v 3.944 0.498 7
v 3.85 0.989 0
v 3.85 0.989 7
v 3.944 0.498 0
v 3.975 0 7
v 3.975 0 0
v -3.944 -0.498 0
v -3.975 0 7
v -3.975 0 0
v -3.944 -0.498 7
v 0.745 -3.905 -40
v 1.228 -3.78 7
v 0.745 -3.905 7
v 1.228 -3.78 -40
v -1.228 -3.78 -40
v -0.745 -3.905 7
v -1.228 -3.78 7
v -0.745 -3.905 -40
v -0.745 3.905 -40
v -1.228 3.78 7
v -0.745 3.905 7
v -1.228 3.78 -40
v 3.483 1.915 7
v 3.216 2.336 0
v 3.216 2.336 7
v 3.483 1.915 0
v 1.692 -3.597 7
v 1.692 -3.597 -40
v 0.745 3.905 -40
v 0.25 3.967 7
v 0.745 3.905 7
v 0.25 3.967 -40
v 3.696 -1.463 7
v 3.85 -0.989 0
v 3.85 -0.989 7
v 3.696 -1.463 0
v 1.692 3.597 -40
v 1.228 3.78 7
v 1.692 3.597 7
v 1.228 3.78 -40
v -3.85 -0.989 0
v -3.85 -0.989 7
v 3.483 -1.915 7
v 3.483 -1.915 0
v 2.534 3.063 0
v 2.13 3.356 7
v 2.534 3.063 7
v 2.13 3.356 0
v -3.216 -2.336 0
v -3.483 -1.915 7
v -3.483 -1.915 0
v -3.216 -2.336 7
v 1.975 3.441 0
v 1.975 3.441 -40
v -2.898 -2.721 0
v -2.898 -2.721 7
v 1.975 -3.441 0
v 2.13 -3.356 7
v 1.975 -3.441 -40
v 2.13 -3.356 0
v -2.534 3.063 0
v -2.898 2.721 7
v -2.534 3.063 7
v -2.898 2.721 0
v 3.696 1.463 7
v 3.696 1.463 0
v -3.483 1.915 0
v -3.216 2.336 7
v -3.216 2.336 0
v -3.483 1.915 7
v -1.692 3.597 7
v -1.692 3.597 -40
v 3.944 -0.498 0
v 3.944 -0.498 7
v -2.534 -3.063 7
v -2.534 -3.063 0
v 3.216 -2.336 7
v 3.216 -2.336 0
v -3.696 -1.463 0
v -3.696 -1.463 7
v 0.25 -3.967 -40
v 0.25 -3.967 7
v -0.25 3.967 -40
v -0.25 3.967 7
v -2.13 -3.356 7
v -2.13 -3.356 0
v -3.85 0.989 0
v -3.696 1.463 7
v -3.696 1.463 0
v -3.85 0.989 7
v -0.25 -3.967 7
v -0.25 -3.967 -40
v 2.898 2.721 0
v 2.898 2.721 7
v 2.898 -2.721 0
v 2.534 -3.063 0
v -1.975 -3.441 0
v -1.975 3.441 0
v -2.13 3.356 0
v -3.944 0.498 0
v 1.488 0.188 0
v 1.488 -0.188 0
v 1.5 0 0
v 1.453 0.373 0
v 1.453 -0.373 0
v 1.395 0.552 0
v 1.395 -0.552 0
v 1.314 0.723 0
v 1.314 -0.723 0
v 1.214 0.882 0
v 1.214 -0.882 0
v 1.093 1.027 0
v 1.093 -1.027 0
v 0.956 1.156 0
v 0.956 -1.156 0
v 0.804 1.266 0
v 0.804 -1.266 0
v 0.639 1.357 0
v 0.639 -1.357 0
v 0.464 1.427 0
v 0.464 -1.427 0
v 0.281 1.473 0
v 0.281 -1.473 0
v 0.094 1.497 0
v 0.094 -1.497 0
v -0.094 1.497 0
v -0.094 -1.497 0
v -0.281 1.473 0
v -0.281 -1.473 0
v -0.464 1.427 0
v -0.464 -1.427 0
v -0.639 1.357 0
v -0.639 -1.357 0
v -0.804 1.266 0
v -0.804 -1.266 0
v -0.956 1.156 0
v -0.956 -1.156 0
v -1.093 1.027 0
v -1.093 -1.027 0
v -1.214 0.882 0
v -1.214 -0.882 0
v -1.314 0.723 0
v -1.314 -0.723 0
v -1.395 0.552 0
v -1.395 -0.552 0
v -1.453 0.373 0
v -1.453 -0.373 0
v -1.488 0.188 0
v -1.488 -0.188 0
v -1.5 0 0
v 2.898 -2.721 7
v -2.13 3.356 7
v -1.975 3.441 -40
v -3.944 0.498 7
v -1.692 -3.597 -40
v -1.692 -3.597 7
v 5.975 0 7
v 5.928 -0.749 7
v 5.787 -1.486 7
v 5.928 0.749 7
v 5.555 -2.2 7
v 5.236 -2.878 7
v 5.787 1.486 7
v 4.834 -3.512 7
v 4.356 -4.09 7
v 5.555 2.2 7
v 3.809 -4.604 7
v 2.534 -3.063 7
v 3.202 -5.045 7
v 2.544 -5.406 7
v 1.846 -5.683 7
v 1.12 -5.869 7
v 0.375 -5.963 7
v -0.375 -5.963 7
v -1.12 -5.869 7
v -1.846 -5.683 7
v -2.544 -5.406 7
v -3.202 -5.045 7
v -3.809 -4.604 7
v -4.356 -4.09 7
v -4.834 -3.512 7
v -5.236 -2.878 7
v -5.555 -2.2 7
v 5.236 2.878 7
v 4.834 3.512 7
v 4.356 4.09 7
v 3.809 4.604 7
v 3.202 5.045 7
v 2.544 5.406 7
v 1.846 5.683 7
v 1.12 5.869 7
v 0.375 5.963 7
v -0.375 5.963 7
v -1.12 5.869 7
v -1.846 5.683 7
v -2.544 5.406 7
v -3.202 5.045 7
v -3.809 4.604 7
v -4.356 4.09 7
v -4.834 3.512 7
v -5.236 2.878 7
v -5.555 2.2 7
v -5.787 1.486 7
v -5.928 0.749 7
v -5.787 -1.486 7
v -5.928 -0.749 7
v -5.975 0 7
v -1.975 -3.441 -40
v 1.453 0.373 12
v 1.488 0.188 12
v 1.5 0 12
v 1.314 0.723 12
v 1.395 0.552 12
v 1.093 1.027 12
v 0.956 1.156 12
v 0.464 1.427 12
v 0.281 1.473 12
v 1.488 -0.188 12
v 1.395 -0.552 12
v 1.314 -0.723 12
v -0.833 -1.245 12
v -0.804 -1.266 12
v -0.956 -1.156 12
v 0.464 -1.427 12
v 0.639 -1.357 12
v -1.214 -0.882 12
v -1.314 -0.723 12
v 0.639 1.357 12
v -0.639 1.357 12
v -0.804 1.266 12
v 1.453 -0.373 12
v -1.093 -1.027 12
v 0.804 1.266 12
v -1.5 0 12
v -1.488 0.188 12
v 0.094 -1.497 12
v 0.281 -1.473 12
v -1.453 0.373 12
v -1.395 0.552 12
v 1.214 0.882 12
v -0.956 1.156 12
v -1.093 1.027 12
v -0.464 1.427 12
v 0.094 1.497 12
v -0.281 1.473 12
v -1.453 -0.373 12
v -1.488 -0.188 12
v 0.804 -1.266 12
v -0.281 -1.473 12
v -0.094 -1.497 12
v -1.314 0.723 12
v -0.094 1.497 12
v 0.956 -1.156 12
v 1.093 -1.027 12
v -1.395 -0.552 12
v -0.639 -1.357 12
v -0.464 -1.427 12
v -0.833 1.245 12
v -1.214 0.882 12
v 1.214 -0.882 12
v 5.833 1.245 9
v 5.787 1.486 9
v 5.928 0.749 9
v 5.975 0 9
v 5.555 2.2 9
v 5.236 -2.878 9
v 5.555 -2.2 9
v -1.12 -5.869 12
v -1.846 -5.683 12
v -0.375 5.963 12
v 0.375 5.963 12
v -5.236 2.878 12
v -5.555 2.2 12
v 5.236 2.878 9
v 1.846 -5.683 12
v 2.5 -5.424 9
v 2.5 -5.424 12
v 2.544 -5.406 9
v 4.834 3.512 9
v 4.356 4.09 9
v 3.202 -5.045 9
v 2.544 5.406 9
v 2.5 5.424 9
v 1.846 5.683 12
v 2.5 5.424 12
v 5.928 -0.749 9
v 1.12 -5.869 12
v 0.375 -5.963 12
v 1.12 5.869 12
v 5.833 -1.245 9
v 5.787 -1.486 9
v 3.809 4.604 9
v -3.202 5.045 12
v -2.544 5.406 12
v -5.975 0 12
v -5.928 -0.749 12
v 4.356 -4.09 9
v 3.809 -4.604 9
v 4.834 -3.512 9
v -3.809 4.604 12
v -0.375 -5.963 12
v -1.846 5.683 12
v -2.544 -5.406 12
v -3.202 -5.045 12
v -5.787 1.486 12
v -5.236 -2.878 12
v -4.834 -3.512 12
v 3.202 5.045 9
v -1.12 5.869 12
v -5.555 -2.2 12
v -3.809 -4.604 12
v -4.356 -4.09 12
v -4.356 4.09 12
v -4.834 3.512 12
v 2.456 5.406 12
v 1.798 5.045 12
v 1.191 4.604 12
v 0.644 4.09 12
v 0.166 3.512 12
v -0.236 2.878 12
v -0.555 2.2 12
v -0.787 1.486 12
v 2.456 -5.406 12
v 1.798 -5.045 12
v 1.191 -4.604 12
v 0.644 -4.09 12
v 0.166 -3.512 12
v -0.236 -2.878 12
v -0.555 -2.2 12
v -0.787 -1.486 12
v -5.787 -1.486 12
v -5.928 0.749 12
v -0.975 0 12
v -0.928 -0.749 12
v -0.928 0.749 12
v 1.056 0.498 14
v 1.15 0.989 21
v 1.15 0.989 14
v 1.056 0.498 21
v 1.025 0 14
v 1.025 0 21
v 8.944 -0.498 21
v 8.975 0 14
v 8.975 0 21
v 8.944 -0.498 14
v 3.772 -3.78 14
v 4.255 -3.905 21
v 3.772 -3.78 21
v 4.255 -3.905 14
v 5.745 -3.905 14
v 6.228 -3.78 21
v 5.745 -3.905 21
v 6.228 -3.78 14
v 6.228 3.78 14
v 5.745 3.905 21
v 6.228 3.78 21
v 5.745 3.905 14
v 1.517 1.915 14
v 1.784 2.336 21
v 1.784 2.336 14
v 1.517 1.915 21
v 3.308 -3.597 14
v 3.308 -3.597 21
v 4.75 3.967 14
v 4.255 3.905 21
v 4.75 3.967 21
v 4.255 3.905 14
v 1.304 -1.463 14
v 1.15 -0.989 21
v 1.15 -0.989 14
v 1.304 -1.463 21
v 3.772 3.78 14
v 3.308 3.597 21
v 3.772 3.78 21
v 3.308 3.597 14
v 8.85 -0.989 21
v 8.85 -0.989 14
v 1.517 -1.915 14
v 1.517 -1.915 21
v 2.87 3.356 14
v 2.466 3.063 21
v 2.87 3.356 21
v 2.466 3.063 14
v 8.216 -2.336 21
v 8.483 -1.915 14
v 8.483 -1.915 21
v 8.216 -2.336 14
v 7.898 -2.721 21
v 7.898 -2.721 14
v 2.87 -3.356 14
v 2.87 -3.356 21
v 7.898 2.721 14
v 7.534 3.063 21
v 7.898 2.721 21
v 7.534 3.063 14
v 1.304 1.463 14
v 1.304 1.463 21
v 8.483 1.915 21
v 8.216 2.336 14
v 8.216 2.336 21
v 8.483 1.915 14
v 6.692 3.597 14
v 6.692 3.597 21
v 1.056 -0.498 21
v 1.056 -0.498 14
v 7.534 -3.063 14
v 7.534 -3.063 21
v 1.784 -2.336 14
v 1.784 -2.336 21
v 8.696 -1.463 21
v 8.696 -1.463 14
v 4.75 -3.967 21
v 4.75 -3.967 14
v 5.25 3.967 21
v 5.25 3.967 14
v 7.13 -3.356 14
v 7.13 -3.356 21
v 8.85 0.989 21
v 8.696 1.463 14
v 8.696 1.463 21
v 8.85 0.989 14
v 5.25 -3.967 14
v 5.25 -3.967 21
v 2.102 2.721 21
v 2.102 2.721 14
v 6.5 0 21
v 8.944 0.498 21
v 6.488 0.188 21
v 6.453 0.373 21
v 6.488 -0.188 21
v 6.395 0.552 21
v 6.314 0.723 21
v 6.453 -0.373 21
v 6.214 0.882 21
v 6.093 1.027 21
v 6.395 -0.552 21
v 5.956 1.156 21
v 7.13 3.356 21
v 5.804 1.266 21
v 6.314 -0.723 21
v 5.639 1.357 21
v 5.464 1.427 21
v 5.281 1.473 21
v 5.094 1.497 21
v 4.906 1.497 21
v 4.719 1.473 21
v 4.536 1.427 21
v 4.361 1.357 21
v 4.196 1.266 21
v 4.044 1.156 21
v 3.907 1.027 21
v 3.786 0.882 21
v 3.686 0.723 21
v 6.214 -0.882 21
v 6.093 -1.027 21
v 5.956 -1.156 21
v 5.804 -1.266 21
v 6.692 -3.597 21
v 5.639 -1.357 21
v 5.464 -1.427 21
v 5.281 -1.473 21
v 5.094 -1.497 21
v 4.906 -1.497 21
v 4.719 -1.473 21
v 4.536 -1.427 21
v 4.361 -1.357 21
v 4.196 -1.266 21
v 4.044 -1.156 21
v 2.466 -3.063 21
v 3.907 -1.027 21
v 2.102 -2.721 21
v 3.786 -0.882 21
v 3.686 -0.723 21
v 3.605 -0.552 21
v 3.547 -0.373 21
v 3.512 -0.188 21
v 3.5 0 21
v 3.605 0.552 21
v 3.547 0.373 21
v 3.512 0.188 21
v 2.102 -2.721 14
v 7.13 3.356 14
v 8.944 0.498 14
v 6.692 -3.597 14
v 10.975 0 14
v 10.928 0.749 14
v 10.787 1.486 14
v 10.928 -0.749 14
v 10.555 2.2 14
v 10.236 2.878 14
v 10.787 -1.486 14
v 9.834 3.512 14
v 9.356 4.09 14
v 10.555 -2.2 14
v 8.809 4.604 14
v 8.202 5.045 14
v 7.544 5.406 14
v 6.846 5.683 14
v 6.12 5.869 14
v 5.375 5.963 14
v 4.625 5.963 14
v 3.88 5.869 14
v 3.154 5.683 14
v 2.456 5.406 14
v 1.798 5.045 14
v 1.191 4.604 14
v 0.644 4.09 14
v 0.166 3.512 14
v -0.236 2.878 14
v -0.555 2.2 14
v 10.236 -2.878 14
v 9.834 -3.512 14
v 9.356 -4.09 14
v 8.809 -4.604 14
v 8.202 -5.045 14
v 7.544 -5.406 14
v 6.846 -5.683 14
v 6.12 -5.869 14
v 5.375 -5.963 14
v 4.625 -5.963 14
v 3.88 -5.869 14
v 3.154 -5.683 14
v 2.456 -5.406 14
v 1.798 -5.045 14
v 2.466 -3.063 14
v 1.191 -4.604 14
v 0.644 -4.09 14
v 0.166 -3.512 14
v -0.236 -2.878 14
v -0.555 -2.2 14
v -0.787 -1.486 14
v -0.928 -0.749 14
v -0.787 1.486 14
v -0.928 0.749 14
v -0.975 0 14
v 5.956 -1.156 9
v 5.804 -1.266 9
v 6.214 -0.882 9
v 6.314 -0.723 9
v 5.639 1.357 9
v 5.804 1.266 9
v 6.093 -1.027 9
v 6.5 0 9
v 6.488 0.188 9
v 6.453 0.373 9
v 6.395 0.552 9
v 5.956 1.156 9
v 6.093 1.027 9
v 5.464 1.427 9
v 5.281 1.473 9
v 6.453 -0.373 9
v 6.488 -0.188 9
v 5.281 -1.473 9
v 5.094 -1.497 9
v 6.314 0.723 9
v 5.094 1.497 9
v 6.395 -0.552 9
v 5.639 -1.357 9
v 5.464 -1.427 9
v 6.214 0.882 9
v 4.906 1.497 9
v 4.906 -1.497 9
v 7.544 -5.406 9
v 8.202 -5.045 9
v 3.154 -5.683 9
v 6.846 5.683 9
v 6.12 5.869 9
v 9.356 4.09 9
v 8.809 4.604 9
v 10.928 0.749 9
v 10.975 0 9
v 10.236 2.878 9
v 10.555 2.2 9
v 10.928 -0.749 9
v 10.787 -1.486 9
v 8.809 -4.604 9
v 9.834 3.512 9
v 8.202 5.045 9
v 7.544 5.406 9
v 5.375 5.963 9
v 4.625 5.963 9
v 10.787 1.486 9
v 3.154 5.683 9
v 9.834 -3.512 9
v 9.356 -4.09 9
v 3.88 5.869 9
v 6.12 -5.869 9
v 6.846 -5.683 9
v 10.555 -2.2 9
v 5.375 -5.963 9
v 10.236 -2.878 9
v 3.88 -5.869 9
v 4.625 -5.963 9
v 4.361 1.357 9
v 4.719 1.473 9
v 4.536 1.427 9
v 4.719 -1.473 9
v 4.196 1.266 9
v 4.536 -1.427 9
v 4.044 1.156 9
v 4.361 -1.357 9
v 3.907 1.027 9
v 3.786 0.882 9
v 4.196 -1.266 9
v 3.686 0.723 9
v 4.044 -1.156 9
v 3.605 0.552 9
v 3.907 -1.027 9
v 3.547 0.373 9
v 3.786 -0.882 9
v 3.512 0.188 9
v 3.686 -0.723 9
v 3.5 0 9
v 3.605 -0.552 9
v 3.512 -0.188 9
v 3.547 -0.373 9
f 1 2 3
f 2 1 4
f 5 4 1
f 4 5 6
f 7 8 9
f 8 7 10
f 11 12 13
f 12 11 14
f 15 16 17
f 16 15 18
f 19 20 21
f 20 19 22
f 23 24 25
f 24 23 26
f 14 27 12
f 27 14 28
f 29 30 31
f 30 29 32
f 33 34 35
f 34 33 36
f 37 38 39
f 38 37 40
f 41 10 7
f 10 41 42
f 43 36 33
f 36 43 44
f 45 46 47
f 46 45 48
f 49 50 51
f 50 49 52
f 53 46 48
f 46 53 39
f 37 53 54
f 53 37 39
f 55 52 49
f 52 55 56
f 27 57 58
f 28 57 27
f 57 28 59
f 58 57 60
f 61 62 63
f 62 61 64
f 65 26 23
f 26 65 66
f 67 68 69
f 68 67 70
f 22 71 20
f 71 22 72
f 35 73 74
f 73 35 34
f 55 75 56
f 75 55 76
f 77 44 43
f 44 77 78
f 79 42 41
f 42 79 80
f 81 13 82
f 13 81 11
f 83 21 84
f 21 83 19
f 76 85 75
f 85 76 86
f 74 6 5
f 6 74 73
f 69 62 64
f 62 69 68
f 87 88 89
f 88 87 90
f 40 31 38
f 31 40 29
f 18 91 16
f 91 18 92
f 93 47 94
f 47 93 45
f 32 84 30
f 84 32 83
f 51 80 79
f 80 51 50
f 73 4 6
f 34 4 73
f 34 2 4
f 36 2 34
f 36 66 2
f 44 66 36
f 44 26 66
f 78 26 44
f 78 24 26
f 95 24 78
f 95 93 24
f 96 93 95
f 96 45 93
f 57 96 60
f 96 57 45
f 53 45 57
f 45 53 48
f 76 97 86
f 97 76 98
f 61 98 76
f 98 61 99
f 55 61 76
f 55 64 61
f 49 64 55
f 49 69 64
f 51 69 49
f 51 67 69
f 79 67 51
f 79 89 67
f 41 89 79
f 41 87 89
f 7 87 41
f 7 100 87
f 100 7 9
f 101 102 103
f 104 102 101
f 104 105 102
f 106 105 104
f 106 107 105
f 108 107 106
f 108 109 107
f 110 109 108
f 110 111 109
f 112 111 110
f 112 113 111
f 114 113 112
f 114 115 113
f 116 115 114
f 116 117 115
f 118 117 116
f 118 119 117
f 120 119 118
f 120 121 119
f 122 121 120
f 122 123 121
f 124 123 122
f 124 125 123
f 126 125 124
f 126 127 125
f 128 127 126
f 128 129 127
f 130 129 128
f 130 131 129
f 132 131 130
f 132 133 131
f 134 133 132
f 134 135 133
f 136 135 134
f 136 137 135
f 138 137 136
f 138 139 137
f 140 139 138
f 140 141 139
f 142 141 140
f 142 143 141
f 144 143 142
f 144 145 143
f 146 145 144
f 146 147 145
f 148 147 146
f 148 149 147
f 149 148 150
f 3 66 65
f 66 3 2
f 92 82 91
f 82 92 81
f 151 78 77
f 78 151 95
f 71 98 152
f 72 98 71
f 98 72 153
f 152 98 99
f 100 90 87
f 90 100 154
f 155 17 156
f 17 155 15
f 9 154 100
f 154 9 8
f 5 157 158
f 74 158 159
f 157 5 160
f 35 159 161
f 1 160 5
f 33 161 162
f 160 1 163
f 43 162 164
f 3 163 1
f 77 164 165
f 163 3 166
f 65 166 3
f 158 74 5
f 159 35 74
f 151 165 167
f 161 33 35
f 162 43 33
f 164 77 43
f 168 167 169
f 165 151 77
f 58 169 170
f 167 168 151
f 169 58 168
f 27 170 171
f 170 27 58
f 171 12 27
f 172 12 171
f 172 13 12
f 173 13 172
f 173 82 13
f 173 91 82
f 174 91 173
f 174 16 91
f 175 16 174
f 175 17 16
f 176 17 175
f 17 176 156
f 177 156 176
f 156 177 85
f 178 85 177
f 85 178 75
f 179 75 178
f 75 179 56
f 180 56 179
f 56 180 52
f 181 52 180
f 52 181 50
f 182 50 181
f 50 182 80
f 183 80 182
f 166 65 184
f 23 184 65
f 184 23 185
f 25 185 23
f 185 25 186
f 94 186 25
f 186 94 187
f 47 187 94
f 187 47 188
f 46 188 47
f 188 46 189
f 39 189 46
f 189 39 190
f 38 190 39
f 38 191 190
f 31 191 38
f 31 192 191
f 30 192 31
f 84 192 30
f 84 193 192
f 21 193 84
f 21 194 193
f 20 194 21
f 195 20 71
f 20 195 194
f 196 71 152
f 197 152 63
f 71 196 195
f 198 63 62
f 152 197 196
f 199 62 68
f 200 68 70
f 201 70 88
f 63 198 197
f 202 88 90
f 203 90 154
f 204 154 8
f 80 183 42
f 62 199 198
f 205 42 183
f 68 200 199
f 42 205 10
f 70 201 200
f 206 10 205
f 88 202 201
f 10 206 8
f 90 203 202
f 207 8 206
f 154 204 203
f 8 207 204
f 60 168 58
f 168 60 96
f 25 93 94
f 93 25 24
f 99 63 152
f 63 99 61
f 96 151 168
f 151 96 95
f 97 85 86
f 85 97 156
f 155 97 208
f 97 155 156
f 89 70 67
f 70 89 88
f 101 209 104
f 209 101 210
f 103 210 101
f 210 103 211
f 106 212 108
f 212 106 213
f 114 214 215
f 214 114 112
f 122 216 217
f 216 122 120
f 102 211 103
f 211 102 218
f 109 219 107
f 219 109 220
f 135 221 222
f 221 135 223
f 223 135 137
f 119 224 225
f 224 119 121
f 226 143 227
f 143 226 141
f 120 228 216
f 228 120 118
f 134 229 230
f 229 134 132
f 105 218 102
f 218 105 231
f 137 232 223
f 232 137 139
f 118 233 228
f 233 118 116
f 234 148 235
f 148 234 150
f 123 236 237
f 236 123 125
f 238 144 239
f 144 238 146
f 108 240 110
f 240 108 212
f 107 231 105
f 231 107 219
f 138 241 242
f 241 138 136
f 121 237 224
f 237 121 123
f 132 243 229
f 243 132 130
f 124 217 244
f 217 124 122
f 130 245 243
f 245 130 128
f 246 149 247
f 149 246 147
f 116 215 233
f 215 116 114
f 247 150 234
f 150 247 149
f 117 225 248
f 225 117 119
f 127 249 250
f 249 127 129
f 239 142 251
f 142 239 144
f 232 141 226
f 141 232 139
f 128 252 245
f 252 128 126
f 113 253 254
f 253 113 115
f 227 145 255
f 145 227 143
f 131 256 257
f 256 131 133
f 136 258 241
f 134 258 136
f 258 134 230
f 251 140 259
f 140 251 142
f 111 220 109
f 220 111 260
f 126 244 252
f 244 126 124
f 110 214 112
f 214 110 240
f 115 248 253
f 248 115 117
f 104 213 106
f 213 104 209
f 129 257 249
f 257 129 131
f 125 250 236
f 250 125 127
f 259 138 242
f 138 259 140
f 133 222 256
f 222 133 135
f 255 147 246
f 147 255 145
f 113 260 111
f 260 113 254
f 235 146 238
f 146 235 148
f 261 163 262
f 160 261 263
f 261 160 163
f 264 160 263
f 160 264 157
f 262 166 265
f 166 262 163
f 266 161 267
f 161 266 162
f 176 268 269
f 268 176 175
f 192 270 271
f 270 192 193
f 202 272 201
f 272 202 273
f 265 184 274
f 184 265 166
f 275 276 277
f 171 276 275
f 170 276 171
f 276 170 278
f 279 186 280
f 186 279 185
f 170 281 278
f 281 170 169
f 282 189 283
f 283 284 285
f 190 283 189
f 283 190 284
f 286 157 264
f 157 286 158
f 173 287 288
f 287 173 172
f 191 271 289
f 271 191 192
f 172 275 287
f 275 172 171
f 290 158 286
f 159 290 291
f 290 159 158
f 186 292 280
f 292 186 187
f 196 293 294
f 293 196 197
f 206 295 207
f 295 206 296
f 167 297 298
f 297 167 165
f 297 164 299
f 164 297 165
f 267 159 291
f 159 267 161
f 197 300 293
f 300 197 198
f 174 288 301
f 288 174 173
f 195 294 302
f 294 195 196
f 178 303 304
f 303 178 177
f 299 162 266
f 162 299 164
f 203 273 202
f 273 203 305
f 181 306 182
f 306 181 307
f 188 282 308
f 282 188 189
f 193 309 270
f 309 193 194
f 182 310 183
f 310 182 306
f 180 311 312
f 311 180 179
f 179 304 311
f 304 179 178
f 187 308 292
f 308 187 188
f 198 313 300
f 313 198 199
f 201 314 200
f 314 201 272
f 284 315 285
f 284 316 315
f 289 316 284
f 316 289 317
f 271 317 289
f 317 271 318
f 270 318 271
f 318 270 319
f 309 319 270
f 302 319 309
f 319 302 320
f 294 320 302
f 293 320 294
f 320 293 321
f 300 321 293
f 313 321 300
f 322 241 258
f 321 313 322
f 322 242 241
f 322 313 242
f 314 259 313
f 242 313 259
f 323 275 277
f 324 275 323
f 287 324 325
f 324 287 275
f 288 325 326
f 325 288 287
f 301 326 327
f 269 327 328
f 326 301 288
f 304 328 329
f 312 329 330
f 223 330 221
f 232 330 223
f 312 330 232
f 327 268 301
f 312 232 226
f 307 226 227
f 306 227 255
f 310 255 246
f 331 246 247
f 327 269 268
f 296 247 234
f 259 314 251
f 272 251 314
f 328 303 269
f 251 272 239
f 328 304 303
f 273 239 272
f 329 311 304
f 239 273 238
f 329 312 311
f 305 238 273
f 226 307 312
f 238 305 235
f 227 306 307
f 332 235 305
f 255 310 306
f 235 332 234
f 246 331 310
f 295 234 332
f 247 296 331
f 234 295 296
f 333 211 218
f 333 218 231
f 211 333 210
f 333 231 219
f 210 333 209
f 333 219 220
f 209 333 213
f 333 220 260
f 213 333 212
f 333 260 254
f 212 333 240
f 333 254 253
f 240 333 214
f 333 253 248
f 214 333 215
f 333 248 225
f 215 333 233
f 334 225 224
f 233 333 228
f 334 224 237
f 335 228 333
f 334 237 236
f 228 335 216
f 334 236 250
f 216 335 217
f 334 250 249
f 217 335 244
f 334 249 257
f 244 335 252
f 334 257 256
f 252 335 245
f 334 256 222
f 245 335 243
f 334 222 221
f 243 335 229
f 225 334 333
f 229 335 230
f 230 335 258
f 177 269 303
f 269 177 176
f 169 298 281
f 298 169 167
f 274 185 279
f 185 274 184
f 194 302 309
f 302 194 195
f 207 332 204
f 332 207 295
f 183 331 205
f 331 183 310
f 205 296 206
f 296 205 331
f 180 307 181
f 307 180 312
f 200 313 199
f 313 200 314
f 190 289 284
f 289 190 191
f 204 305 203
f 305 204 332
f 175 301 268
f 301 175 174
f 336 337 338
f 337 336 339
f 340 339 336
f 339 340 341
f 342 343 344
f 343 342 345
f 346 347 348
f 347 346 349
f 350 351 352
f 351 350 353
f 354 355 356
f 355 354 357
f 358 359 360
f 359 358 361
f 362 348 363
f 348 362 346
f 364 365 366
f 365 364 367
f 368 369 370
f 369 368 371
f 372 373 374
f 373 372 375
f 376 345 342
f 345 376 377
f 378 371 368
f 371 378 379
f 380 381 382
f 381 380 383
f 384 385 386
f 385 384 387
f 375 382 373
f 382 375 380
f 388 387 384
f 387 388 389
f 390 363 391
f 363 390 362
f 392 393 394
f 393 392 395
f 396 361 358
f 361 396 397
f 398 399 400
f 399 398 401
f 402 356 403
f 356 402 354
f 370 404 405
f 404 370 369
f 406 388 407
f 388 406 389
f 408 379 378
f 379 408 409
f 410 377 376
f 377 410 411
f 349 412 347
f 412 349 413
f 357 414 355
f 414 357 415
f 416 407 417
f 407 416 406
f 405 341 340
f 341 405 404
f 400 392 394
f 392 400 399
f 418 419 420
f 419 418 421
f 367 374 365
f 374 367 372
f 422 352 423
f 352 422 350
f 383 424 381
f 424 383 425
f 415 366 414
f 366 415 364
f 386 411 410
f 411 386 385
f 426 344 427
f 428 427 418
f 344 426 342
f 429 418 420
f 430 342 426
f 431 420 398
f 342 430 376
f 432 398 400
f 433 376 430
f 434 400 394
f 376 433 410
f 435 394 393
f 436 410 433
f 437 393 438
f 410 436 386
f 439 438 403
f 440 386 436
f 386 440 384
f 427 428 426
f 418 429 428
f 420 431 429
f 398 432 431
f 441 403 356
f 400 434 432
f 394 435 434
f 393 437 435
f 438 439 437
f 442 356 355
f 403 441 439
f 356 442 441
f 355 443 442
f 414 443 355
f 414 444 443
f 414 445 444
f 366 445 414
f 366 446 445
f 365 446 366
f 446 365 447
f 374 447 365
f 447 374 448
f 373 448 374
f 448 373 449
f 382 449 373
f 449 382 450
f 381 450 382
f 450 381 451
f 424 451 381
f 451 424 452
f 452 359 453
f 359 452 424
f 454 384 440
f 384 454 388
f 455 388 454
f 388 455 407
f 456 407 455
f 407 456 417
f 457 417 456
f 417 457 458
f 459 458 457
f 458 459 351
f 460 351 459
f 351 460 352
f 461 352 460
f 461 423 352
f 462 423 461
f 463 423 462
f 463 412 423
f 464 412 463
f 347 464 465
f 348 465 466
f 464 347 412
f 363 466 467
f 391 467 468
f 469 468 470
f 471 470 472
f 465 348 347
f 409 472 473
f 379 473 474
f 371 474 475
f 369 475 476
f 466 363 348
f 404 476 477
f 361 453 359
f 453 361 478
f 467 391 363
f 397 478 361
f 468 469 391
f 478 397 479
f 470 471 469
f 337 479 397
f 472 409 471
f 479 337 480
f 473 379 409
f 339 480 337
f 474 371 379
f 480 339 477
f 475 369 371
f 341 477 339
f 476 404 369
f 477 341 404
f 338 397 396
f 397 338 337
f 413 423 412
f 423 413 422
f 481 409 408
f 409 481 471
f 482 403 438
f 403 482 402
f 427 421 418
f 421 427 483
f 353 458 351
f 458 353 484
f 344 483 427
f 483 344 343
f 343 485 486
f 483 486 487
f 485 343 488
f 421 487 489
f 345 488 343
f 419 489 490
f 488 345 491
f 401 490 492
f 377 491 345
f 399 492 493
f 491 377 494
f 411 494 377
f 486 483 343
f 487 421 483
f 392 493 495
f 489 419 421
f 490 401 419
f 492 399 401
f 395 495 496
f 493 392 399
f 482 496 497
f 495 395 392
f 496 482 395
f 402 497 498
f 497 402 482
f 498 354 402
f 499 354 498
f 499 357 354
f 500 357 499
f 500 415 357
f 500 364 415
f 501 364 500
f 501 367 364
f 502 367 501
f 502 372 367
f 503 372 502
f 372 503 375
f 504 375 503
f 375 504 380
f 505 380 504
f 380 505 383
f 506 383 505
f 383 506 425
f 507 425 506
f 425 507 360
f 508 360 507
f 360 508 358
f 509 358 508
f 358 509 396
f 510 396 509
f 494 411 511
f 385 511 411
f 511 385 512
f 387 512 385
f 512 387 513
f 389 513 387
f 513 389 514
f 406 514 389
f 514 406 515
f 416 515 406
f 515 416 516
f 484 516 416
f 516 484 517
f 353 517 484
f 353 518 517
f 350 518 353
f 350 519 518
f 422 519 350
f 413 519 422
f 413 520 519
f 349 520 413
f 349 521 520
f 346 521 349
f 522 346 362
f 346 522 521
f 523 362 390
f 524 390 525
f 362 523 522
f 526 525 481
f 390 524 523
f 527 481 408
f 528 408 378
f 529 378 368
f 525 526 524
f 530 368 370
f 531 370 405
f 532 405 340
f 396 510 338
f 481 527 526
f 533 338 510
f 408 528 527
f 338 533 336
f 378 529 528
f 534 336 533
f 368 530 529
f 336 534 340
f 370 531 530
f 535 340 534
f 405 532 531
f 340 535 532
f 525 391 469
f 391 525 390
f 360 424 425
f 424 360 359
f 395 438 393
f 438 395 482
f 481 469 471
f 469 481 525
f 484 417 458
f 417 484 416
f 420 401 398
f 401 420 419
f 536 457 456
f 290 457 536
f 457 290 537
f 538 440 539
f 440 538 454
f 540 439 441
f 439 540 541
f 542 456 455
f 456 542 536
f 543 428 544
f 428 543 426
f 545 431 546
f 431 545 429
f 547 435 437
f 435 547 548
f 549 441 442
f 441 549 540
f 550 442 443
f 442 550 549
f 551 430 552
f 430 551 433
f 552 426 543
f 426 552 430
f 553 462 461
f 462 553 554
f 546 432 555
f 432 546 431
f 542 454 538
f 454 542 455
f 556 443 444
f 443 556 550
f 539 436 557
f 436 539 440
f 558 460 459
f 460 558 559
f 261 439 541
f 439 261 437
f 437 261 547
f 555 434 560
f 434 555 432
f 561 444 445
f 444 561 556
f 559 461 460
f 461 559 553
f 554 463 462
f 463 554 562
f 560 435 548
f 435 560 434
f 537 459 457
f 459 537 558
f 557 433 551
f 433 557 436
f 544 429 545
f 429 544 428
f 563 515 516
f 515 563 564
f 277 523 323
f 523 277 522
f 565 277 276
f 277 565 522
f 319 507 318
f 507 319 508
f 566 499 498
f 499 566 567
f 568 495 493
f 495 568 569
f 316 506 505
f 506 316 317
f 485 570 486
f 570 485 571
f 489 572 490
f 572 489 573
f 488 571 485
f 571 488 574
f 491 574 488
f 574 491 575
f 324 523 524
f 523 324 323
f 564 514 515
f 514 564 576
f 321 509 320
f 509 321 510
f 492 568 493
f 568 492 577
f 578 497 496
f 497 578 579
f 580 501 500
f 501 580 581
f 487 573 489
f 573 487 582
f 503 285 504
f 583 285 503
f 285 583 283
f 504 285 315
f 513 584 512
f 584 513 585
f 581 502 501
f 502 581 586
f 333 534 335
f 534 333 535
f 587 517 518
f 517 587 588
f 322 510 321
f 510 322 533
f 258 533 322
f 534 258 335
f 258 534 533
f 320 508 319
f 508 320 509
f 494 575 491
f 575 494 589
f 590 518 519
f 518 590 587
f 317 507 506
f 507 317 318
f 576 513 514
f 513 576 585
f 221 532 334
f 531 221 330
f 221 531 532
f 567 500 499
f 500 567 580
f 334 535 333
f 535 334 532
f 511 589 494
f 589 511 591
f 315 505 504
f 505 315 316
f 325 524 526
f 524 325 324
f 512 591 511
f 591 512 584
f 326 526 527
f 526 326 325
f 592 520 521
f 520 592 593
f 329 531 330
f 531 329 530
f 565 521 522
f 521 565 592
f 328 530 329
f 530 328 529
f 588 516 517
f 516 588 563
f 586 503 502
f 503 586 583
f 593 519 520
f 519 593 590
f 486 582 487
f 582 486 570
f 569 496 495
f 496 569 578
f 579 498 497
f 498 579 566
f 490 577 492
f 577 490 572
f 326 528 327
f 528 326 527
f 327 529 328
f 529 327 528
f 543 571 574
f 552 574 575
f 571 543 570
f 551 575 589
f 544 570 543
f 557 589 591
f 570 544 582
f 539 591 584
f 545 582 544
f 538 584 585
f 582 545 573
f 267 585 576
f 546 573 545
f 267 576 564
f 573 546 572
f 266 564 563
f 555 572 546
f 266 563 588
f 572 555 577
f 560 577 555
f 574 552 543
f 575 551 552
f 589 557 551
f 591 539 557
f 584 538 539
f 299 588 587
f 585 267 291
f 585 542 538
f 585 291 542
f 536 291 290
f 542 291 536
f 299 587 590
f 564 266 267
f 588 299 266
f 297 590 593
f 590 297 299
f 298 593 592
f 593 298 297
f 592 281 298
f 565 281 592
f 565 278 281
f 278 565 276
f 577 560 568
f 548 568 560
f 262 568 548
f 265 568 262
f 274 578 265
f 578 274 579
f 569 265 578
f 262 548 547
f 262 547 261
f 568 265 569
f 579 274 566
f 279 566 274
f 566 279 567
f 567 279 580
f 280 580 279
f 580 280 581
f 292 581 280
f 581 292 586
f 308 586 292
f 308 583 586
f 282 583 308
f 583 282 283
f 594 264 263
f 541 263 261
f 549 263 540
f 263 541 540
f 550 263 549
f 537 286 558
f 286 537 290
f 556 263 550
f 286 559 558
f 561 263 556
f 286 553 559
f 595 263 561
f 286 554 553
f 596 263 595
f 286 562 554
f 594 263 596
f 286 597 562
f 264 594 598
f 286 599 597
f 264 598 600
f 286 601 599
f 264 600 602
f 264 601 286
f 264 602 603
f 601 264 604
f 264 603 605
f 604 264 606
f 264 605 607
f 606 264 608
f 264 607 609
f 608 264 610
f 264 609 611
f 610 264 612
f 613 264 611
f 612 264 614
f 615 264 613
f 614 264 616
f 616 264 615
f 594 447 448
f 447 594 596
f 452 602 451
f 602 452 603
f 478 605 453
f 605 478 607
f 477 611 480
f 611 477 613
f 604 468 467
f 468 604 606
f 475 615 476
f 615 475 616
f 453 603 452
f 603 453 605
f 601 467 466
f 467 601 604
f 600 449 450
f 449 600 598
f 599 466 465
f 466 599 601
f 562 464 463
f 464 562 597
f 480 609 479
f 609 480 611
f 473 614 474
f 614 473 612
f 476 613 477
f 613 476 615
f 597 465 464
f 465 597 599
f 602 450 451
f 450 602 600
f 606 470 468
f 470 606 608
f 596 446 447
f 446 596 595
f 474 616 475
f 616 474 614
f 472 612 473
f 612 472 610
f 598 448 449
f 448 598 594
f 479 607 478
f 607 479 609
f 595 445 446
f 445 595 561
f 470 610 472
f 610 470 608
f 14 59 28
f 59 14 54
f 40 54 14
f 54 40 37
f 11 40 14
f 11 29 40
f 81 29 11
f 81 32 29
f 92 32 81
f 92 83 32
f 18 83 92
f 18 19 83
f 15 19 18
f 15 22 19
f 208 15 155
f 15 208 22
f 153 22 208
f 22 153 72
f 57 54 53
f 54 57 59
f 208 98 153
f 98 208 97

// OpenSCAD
// file: includes/parametric-pulley-generator.scad
/**
 * @name parametric-pulley-generator
 * @category Printed
 * @using 1 x m3 nut, normal or nyloc
 * @using 1 x m3x10 set screw or 1 x m3x8 grub screw
 */

function calc_pulley_dia_tooth_spacing_curvefit(teeth, b,c,d) = ((c * pow(teeth,d)) / (b + pow(teeth,d))) * teeth ;

function calc_pulley_dia_tooth_spacing(teeth, tooth_pitch, pitch_line_offset) = (2*((teeth*tooth_pitch)/(3.14159265*2)-pitch_line_offset)) ;

// Main Module
//

// Some globals
NEMA17_SHAFT_DIA = 5.2;
M3_DIA       = 3.2;
M3_NUT_HEX       = 1 ;
M3_NUT_FLATS     = 5.7;
M3_NUT_DEPTH     = 2.7;
M3_NUT_POINTS    = 2*((M3_NUT_FLATS/2)/cos(30)); // This is needed for the nut tra

module pulley(
        belt_description
        ,pulley_OD
        ,teeth
        ,tooth_depth
        ,tooth_width
        ,additional_tooth_depth
        ,additional_tooth_width
        ,motor_shaft = NEMA17_SHAFT_DIA ) {

    echo (str( "Belt type = ",        belt_description
                ,"; Pulley Outside Diameter = ",pulley_OD,"mm "
                ,"; Number of teeth = ",    teeth
                ,"; Tooth Depth = ",        tooth_depth
                ,"; Tooth Width = ",        tooth_width
         ));

    // calculated constants
    nut_elevation = pulley_b_ht/2;

    tooth_distance_from_centre = sqrt( pow(pulley_OD/2,2) - pow((tooth_width+additional_tooth_width)/2,2));
    tooth_width_scale = (tooth_width + additional_tooth_width ) / tooth_width;
    tooth_depth_scale = ((tooth_depth + additional_tooth_depth ) / tooth_depth) ;


    //    ************************************************************************
    //    *** uncomment the following line if pulley is wider than puller base ***
    //    ************************************************************************

    //    translate ([0,0, pulley_b_ht + pulley_t_ht + retainer_ht + retainer_flat_width ]) rotate ([0,180,0])

    difference()
    {
        union()
        {
            // base
            if ( pulley_b_ht < 2 ) { echo ("CAN'T DRAW PULLEY BASE, HEIGHT LESS THAN 2!!!"); } else {
                rotate_extrude($fn=pulley_b_dia*2)
                {
                    square([pulley_b_dia/2-1,pulley_b_ht]);
                    square([pulley_b_dia/2,pulley_b_ht-1]);
                    translate([pulley_b_dia/2-1,pulley_b_ht-1]) circle(1);
                }
            }

            // we need to push the pulley and retainer "up" above the idler (if there is one)
            translate([0,0,idler_ht + idler_flat_width]) {
                difference()
                {
                    //shaft - diameter is outside diameter of pulley

                    translate([0,0,pulley_b_ht])
                        rotate ([0,0,360/(teeth*4)])
                        cylinder(r=pulley_OD/2,h=pulley_t_ht, $fn=teeth*4);

                    //teeth - cut out of shaft

                    for(i=[1:teeth])
                        rotate([0,0,i*(360/teeth)])
                            translate([0,-tooth_distance_from_centre,pulley_b_ht -1])
                            scale ([ tooth_width_scale , tooth_depth_scale , 1 ])
                            {
                                //children is the "tooth_profile"
                                children();
                            }
                }

                //belt retainer / idler
                if ( retainer_ht > 0 || retainer_flat_width > 0) {translate ([0,0, pulley_b_ht + pulley_t_ht ])
                    rotate_extrude($fn=teeth*4)
                        polygon([
                           [0,0],
                           [pulley_OD/2,0],
                           [pulley_OD/2 + retainer_ht , retainer_ht],
                           [pulley_OD/2 + retainer_ht , retainer_ht + retainer_flat_width],
                           [0 , retainer_ht + retainer_flat_width]
                           ]);}
            }

            if ( idler_ht > 0 || idler_flat_width > 0) {translate ([0,0, pulley_b_ht])
                rotate_extrude($fn=teeth*4)
                    polygon([
                       [0,0],
                       [pulley_OD/2 + idler_ht,0],
                       [pulley_OD/2 + idler_ht,idler_flat_width],
                       [pulley_OD/2 , idler_ht + idler_flat_width],
                       [0 , idler_ht + idler_flat_width],
                       ]);}

        }

        //hole for motor shaft
        translate([0,0,-1])cylinder(r=motor_shaft/2,h=pulley_b_ht + idler_ht + idler_flat_width + pulley_t_ht + retainer_ht + retainer_flat_width + 2,$fn=motor_shaft*4);

        //captive nut and grub screw holes
        subtractive_captive_nut_and_grub_screw(pulley_b_ht, pulley_b_dia, motor_shaft , nut_elevation);

    }

}

// Captive nut and grub screw holes
module subtractive_captive_nut_and_grub_screw( pulley_b_ht, pulley_b_dia, motor_shaft , nut_elevation) {


    if ( pulley_b_ht < M3_NUT_FLATS ) {
        echo ("CAN'T DRAW CAPTIVE NUTS, HEIGHT LESS THAN NUT DIAMETER!!!");
    } else {
        if ( (pulley_b_dia - motor_shaft)/2 < M3_NUT_DEPTH + 3 ) {
            echo ("CAN'T DRAW CAPTIVE NUTS, DIAMETER TOO SMALL FOR NUT DEPTH!!!");
        } else {
            for(j=[1:no_of_nuts]) rotate([0,0,j*nut_angle])
                translate([0,0,nut_elevation])rotate([90,0,0]) union() {
                    //entrance
                    translate([0,-pulley_b_ht/4-0.5,motor_shaft/2+M3_NUT_DEPTH/2+nut_shaft_distance]) cube([M3_NUT_FLATS,pulley_b_ht/2+1,M3_NUT_DEPTH],center=true);

                    //nut
                    if ( M3_NUT_HEX > 0 )
                    {
                        // hex nut
                        translate([0,0.25,motor_shaft/2+M3_NUT_DEPTH/2+nut_shaft_distance]) rotate([0,0,30]) cylinder(r=M3_NUT_POINTS/2,h=M3_NUT_DEPTH,center=true,$fn=6);
                    } else {
                        // square nut
                        translate([0,0.25,motor_shaft/2+M3_NUT_DEPTH/2+nut_shaft_distance]) cube([M3_NUT_FLATS,M3_NUT_FLATS,M3_NUT_DEPTH],center=true);
                    }

                    //grub screw hole
                    rotate([0,0,22.5])cylinder(r=M3_DIA /2,h=pulley_b_dia/2+1,$fn=8);
                }
        }
    }
}
// main file
$fn=50;
use <MCAD/nuts_and_bolts.scad>
use <includes/parametric-pulley-generator.scad>

bearing_id=7.95;
bearing_od=22;
bearing_inset_t=7;
bearing_upper_t=5;
bearing_extra=2;
orbit_radius=5;
offset_mm=2;

module bearing_binding(){
    difference(){
    cylinder(r=bearing_id/2,h=bearing_inset_t);
    cylinder(r=1.5,h=10);    
    
    
    }
    
}


module half_positive(){
    bearing_binding();

   
    translate([0,0,bearing_inset_t])
    cylinder(r=bearing_id/2+bearing_extra,h=bearing_upper_t);

    
    };
    
    
module half_negative(){

   
    
    translate([0,0,9.5]){
        scale([1,1,1.05]){
   //  #nutHole(3)
            ;}}
             translate([-2,0,9.5]){
        scale([1,1,1.05]){
    // #nutHole(3)
            ;}}
    
        

    
    
    
        

    
     cylinder(r=1.5,h=12);    
    


    
    
    
    };

module joiner(){
difference(){
    union(){
half_positive();
    translate([orbit_radius,0,bearing_inset_t*2+bearing_upper_t+offset_mm])
rotate(180,[0,1,0]) half_positive();}
    
    half_negative();
    translate([orbit_radius,0,bearing_inset_t*2+bearing_upper_t+offset_mm])
rotate(180,[0,1,0]) half_negative();
};
};



//cylinder(r=bearing_id/2,h=20);
//color("red") cylinder(r=22/2,h=7);

module truncated_cylinder(r,h, notch){
    difference(){
        cylinder(r=r,h=h);
        translate([r-notch,-300,0])cube([500,500,500]);
        translate([-500-r+notch,-300,0])cube([500,500,500]);
    };
};

ext_length=40;
joiner();
translate([0,0,-ext_length]) truncated_cylinder(bearing_id/2,ext_length,2);
